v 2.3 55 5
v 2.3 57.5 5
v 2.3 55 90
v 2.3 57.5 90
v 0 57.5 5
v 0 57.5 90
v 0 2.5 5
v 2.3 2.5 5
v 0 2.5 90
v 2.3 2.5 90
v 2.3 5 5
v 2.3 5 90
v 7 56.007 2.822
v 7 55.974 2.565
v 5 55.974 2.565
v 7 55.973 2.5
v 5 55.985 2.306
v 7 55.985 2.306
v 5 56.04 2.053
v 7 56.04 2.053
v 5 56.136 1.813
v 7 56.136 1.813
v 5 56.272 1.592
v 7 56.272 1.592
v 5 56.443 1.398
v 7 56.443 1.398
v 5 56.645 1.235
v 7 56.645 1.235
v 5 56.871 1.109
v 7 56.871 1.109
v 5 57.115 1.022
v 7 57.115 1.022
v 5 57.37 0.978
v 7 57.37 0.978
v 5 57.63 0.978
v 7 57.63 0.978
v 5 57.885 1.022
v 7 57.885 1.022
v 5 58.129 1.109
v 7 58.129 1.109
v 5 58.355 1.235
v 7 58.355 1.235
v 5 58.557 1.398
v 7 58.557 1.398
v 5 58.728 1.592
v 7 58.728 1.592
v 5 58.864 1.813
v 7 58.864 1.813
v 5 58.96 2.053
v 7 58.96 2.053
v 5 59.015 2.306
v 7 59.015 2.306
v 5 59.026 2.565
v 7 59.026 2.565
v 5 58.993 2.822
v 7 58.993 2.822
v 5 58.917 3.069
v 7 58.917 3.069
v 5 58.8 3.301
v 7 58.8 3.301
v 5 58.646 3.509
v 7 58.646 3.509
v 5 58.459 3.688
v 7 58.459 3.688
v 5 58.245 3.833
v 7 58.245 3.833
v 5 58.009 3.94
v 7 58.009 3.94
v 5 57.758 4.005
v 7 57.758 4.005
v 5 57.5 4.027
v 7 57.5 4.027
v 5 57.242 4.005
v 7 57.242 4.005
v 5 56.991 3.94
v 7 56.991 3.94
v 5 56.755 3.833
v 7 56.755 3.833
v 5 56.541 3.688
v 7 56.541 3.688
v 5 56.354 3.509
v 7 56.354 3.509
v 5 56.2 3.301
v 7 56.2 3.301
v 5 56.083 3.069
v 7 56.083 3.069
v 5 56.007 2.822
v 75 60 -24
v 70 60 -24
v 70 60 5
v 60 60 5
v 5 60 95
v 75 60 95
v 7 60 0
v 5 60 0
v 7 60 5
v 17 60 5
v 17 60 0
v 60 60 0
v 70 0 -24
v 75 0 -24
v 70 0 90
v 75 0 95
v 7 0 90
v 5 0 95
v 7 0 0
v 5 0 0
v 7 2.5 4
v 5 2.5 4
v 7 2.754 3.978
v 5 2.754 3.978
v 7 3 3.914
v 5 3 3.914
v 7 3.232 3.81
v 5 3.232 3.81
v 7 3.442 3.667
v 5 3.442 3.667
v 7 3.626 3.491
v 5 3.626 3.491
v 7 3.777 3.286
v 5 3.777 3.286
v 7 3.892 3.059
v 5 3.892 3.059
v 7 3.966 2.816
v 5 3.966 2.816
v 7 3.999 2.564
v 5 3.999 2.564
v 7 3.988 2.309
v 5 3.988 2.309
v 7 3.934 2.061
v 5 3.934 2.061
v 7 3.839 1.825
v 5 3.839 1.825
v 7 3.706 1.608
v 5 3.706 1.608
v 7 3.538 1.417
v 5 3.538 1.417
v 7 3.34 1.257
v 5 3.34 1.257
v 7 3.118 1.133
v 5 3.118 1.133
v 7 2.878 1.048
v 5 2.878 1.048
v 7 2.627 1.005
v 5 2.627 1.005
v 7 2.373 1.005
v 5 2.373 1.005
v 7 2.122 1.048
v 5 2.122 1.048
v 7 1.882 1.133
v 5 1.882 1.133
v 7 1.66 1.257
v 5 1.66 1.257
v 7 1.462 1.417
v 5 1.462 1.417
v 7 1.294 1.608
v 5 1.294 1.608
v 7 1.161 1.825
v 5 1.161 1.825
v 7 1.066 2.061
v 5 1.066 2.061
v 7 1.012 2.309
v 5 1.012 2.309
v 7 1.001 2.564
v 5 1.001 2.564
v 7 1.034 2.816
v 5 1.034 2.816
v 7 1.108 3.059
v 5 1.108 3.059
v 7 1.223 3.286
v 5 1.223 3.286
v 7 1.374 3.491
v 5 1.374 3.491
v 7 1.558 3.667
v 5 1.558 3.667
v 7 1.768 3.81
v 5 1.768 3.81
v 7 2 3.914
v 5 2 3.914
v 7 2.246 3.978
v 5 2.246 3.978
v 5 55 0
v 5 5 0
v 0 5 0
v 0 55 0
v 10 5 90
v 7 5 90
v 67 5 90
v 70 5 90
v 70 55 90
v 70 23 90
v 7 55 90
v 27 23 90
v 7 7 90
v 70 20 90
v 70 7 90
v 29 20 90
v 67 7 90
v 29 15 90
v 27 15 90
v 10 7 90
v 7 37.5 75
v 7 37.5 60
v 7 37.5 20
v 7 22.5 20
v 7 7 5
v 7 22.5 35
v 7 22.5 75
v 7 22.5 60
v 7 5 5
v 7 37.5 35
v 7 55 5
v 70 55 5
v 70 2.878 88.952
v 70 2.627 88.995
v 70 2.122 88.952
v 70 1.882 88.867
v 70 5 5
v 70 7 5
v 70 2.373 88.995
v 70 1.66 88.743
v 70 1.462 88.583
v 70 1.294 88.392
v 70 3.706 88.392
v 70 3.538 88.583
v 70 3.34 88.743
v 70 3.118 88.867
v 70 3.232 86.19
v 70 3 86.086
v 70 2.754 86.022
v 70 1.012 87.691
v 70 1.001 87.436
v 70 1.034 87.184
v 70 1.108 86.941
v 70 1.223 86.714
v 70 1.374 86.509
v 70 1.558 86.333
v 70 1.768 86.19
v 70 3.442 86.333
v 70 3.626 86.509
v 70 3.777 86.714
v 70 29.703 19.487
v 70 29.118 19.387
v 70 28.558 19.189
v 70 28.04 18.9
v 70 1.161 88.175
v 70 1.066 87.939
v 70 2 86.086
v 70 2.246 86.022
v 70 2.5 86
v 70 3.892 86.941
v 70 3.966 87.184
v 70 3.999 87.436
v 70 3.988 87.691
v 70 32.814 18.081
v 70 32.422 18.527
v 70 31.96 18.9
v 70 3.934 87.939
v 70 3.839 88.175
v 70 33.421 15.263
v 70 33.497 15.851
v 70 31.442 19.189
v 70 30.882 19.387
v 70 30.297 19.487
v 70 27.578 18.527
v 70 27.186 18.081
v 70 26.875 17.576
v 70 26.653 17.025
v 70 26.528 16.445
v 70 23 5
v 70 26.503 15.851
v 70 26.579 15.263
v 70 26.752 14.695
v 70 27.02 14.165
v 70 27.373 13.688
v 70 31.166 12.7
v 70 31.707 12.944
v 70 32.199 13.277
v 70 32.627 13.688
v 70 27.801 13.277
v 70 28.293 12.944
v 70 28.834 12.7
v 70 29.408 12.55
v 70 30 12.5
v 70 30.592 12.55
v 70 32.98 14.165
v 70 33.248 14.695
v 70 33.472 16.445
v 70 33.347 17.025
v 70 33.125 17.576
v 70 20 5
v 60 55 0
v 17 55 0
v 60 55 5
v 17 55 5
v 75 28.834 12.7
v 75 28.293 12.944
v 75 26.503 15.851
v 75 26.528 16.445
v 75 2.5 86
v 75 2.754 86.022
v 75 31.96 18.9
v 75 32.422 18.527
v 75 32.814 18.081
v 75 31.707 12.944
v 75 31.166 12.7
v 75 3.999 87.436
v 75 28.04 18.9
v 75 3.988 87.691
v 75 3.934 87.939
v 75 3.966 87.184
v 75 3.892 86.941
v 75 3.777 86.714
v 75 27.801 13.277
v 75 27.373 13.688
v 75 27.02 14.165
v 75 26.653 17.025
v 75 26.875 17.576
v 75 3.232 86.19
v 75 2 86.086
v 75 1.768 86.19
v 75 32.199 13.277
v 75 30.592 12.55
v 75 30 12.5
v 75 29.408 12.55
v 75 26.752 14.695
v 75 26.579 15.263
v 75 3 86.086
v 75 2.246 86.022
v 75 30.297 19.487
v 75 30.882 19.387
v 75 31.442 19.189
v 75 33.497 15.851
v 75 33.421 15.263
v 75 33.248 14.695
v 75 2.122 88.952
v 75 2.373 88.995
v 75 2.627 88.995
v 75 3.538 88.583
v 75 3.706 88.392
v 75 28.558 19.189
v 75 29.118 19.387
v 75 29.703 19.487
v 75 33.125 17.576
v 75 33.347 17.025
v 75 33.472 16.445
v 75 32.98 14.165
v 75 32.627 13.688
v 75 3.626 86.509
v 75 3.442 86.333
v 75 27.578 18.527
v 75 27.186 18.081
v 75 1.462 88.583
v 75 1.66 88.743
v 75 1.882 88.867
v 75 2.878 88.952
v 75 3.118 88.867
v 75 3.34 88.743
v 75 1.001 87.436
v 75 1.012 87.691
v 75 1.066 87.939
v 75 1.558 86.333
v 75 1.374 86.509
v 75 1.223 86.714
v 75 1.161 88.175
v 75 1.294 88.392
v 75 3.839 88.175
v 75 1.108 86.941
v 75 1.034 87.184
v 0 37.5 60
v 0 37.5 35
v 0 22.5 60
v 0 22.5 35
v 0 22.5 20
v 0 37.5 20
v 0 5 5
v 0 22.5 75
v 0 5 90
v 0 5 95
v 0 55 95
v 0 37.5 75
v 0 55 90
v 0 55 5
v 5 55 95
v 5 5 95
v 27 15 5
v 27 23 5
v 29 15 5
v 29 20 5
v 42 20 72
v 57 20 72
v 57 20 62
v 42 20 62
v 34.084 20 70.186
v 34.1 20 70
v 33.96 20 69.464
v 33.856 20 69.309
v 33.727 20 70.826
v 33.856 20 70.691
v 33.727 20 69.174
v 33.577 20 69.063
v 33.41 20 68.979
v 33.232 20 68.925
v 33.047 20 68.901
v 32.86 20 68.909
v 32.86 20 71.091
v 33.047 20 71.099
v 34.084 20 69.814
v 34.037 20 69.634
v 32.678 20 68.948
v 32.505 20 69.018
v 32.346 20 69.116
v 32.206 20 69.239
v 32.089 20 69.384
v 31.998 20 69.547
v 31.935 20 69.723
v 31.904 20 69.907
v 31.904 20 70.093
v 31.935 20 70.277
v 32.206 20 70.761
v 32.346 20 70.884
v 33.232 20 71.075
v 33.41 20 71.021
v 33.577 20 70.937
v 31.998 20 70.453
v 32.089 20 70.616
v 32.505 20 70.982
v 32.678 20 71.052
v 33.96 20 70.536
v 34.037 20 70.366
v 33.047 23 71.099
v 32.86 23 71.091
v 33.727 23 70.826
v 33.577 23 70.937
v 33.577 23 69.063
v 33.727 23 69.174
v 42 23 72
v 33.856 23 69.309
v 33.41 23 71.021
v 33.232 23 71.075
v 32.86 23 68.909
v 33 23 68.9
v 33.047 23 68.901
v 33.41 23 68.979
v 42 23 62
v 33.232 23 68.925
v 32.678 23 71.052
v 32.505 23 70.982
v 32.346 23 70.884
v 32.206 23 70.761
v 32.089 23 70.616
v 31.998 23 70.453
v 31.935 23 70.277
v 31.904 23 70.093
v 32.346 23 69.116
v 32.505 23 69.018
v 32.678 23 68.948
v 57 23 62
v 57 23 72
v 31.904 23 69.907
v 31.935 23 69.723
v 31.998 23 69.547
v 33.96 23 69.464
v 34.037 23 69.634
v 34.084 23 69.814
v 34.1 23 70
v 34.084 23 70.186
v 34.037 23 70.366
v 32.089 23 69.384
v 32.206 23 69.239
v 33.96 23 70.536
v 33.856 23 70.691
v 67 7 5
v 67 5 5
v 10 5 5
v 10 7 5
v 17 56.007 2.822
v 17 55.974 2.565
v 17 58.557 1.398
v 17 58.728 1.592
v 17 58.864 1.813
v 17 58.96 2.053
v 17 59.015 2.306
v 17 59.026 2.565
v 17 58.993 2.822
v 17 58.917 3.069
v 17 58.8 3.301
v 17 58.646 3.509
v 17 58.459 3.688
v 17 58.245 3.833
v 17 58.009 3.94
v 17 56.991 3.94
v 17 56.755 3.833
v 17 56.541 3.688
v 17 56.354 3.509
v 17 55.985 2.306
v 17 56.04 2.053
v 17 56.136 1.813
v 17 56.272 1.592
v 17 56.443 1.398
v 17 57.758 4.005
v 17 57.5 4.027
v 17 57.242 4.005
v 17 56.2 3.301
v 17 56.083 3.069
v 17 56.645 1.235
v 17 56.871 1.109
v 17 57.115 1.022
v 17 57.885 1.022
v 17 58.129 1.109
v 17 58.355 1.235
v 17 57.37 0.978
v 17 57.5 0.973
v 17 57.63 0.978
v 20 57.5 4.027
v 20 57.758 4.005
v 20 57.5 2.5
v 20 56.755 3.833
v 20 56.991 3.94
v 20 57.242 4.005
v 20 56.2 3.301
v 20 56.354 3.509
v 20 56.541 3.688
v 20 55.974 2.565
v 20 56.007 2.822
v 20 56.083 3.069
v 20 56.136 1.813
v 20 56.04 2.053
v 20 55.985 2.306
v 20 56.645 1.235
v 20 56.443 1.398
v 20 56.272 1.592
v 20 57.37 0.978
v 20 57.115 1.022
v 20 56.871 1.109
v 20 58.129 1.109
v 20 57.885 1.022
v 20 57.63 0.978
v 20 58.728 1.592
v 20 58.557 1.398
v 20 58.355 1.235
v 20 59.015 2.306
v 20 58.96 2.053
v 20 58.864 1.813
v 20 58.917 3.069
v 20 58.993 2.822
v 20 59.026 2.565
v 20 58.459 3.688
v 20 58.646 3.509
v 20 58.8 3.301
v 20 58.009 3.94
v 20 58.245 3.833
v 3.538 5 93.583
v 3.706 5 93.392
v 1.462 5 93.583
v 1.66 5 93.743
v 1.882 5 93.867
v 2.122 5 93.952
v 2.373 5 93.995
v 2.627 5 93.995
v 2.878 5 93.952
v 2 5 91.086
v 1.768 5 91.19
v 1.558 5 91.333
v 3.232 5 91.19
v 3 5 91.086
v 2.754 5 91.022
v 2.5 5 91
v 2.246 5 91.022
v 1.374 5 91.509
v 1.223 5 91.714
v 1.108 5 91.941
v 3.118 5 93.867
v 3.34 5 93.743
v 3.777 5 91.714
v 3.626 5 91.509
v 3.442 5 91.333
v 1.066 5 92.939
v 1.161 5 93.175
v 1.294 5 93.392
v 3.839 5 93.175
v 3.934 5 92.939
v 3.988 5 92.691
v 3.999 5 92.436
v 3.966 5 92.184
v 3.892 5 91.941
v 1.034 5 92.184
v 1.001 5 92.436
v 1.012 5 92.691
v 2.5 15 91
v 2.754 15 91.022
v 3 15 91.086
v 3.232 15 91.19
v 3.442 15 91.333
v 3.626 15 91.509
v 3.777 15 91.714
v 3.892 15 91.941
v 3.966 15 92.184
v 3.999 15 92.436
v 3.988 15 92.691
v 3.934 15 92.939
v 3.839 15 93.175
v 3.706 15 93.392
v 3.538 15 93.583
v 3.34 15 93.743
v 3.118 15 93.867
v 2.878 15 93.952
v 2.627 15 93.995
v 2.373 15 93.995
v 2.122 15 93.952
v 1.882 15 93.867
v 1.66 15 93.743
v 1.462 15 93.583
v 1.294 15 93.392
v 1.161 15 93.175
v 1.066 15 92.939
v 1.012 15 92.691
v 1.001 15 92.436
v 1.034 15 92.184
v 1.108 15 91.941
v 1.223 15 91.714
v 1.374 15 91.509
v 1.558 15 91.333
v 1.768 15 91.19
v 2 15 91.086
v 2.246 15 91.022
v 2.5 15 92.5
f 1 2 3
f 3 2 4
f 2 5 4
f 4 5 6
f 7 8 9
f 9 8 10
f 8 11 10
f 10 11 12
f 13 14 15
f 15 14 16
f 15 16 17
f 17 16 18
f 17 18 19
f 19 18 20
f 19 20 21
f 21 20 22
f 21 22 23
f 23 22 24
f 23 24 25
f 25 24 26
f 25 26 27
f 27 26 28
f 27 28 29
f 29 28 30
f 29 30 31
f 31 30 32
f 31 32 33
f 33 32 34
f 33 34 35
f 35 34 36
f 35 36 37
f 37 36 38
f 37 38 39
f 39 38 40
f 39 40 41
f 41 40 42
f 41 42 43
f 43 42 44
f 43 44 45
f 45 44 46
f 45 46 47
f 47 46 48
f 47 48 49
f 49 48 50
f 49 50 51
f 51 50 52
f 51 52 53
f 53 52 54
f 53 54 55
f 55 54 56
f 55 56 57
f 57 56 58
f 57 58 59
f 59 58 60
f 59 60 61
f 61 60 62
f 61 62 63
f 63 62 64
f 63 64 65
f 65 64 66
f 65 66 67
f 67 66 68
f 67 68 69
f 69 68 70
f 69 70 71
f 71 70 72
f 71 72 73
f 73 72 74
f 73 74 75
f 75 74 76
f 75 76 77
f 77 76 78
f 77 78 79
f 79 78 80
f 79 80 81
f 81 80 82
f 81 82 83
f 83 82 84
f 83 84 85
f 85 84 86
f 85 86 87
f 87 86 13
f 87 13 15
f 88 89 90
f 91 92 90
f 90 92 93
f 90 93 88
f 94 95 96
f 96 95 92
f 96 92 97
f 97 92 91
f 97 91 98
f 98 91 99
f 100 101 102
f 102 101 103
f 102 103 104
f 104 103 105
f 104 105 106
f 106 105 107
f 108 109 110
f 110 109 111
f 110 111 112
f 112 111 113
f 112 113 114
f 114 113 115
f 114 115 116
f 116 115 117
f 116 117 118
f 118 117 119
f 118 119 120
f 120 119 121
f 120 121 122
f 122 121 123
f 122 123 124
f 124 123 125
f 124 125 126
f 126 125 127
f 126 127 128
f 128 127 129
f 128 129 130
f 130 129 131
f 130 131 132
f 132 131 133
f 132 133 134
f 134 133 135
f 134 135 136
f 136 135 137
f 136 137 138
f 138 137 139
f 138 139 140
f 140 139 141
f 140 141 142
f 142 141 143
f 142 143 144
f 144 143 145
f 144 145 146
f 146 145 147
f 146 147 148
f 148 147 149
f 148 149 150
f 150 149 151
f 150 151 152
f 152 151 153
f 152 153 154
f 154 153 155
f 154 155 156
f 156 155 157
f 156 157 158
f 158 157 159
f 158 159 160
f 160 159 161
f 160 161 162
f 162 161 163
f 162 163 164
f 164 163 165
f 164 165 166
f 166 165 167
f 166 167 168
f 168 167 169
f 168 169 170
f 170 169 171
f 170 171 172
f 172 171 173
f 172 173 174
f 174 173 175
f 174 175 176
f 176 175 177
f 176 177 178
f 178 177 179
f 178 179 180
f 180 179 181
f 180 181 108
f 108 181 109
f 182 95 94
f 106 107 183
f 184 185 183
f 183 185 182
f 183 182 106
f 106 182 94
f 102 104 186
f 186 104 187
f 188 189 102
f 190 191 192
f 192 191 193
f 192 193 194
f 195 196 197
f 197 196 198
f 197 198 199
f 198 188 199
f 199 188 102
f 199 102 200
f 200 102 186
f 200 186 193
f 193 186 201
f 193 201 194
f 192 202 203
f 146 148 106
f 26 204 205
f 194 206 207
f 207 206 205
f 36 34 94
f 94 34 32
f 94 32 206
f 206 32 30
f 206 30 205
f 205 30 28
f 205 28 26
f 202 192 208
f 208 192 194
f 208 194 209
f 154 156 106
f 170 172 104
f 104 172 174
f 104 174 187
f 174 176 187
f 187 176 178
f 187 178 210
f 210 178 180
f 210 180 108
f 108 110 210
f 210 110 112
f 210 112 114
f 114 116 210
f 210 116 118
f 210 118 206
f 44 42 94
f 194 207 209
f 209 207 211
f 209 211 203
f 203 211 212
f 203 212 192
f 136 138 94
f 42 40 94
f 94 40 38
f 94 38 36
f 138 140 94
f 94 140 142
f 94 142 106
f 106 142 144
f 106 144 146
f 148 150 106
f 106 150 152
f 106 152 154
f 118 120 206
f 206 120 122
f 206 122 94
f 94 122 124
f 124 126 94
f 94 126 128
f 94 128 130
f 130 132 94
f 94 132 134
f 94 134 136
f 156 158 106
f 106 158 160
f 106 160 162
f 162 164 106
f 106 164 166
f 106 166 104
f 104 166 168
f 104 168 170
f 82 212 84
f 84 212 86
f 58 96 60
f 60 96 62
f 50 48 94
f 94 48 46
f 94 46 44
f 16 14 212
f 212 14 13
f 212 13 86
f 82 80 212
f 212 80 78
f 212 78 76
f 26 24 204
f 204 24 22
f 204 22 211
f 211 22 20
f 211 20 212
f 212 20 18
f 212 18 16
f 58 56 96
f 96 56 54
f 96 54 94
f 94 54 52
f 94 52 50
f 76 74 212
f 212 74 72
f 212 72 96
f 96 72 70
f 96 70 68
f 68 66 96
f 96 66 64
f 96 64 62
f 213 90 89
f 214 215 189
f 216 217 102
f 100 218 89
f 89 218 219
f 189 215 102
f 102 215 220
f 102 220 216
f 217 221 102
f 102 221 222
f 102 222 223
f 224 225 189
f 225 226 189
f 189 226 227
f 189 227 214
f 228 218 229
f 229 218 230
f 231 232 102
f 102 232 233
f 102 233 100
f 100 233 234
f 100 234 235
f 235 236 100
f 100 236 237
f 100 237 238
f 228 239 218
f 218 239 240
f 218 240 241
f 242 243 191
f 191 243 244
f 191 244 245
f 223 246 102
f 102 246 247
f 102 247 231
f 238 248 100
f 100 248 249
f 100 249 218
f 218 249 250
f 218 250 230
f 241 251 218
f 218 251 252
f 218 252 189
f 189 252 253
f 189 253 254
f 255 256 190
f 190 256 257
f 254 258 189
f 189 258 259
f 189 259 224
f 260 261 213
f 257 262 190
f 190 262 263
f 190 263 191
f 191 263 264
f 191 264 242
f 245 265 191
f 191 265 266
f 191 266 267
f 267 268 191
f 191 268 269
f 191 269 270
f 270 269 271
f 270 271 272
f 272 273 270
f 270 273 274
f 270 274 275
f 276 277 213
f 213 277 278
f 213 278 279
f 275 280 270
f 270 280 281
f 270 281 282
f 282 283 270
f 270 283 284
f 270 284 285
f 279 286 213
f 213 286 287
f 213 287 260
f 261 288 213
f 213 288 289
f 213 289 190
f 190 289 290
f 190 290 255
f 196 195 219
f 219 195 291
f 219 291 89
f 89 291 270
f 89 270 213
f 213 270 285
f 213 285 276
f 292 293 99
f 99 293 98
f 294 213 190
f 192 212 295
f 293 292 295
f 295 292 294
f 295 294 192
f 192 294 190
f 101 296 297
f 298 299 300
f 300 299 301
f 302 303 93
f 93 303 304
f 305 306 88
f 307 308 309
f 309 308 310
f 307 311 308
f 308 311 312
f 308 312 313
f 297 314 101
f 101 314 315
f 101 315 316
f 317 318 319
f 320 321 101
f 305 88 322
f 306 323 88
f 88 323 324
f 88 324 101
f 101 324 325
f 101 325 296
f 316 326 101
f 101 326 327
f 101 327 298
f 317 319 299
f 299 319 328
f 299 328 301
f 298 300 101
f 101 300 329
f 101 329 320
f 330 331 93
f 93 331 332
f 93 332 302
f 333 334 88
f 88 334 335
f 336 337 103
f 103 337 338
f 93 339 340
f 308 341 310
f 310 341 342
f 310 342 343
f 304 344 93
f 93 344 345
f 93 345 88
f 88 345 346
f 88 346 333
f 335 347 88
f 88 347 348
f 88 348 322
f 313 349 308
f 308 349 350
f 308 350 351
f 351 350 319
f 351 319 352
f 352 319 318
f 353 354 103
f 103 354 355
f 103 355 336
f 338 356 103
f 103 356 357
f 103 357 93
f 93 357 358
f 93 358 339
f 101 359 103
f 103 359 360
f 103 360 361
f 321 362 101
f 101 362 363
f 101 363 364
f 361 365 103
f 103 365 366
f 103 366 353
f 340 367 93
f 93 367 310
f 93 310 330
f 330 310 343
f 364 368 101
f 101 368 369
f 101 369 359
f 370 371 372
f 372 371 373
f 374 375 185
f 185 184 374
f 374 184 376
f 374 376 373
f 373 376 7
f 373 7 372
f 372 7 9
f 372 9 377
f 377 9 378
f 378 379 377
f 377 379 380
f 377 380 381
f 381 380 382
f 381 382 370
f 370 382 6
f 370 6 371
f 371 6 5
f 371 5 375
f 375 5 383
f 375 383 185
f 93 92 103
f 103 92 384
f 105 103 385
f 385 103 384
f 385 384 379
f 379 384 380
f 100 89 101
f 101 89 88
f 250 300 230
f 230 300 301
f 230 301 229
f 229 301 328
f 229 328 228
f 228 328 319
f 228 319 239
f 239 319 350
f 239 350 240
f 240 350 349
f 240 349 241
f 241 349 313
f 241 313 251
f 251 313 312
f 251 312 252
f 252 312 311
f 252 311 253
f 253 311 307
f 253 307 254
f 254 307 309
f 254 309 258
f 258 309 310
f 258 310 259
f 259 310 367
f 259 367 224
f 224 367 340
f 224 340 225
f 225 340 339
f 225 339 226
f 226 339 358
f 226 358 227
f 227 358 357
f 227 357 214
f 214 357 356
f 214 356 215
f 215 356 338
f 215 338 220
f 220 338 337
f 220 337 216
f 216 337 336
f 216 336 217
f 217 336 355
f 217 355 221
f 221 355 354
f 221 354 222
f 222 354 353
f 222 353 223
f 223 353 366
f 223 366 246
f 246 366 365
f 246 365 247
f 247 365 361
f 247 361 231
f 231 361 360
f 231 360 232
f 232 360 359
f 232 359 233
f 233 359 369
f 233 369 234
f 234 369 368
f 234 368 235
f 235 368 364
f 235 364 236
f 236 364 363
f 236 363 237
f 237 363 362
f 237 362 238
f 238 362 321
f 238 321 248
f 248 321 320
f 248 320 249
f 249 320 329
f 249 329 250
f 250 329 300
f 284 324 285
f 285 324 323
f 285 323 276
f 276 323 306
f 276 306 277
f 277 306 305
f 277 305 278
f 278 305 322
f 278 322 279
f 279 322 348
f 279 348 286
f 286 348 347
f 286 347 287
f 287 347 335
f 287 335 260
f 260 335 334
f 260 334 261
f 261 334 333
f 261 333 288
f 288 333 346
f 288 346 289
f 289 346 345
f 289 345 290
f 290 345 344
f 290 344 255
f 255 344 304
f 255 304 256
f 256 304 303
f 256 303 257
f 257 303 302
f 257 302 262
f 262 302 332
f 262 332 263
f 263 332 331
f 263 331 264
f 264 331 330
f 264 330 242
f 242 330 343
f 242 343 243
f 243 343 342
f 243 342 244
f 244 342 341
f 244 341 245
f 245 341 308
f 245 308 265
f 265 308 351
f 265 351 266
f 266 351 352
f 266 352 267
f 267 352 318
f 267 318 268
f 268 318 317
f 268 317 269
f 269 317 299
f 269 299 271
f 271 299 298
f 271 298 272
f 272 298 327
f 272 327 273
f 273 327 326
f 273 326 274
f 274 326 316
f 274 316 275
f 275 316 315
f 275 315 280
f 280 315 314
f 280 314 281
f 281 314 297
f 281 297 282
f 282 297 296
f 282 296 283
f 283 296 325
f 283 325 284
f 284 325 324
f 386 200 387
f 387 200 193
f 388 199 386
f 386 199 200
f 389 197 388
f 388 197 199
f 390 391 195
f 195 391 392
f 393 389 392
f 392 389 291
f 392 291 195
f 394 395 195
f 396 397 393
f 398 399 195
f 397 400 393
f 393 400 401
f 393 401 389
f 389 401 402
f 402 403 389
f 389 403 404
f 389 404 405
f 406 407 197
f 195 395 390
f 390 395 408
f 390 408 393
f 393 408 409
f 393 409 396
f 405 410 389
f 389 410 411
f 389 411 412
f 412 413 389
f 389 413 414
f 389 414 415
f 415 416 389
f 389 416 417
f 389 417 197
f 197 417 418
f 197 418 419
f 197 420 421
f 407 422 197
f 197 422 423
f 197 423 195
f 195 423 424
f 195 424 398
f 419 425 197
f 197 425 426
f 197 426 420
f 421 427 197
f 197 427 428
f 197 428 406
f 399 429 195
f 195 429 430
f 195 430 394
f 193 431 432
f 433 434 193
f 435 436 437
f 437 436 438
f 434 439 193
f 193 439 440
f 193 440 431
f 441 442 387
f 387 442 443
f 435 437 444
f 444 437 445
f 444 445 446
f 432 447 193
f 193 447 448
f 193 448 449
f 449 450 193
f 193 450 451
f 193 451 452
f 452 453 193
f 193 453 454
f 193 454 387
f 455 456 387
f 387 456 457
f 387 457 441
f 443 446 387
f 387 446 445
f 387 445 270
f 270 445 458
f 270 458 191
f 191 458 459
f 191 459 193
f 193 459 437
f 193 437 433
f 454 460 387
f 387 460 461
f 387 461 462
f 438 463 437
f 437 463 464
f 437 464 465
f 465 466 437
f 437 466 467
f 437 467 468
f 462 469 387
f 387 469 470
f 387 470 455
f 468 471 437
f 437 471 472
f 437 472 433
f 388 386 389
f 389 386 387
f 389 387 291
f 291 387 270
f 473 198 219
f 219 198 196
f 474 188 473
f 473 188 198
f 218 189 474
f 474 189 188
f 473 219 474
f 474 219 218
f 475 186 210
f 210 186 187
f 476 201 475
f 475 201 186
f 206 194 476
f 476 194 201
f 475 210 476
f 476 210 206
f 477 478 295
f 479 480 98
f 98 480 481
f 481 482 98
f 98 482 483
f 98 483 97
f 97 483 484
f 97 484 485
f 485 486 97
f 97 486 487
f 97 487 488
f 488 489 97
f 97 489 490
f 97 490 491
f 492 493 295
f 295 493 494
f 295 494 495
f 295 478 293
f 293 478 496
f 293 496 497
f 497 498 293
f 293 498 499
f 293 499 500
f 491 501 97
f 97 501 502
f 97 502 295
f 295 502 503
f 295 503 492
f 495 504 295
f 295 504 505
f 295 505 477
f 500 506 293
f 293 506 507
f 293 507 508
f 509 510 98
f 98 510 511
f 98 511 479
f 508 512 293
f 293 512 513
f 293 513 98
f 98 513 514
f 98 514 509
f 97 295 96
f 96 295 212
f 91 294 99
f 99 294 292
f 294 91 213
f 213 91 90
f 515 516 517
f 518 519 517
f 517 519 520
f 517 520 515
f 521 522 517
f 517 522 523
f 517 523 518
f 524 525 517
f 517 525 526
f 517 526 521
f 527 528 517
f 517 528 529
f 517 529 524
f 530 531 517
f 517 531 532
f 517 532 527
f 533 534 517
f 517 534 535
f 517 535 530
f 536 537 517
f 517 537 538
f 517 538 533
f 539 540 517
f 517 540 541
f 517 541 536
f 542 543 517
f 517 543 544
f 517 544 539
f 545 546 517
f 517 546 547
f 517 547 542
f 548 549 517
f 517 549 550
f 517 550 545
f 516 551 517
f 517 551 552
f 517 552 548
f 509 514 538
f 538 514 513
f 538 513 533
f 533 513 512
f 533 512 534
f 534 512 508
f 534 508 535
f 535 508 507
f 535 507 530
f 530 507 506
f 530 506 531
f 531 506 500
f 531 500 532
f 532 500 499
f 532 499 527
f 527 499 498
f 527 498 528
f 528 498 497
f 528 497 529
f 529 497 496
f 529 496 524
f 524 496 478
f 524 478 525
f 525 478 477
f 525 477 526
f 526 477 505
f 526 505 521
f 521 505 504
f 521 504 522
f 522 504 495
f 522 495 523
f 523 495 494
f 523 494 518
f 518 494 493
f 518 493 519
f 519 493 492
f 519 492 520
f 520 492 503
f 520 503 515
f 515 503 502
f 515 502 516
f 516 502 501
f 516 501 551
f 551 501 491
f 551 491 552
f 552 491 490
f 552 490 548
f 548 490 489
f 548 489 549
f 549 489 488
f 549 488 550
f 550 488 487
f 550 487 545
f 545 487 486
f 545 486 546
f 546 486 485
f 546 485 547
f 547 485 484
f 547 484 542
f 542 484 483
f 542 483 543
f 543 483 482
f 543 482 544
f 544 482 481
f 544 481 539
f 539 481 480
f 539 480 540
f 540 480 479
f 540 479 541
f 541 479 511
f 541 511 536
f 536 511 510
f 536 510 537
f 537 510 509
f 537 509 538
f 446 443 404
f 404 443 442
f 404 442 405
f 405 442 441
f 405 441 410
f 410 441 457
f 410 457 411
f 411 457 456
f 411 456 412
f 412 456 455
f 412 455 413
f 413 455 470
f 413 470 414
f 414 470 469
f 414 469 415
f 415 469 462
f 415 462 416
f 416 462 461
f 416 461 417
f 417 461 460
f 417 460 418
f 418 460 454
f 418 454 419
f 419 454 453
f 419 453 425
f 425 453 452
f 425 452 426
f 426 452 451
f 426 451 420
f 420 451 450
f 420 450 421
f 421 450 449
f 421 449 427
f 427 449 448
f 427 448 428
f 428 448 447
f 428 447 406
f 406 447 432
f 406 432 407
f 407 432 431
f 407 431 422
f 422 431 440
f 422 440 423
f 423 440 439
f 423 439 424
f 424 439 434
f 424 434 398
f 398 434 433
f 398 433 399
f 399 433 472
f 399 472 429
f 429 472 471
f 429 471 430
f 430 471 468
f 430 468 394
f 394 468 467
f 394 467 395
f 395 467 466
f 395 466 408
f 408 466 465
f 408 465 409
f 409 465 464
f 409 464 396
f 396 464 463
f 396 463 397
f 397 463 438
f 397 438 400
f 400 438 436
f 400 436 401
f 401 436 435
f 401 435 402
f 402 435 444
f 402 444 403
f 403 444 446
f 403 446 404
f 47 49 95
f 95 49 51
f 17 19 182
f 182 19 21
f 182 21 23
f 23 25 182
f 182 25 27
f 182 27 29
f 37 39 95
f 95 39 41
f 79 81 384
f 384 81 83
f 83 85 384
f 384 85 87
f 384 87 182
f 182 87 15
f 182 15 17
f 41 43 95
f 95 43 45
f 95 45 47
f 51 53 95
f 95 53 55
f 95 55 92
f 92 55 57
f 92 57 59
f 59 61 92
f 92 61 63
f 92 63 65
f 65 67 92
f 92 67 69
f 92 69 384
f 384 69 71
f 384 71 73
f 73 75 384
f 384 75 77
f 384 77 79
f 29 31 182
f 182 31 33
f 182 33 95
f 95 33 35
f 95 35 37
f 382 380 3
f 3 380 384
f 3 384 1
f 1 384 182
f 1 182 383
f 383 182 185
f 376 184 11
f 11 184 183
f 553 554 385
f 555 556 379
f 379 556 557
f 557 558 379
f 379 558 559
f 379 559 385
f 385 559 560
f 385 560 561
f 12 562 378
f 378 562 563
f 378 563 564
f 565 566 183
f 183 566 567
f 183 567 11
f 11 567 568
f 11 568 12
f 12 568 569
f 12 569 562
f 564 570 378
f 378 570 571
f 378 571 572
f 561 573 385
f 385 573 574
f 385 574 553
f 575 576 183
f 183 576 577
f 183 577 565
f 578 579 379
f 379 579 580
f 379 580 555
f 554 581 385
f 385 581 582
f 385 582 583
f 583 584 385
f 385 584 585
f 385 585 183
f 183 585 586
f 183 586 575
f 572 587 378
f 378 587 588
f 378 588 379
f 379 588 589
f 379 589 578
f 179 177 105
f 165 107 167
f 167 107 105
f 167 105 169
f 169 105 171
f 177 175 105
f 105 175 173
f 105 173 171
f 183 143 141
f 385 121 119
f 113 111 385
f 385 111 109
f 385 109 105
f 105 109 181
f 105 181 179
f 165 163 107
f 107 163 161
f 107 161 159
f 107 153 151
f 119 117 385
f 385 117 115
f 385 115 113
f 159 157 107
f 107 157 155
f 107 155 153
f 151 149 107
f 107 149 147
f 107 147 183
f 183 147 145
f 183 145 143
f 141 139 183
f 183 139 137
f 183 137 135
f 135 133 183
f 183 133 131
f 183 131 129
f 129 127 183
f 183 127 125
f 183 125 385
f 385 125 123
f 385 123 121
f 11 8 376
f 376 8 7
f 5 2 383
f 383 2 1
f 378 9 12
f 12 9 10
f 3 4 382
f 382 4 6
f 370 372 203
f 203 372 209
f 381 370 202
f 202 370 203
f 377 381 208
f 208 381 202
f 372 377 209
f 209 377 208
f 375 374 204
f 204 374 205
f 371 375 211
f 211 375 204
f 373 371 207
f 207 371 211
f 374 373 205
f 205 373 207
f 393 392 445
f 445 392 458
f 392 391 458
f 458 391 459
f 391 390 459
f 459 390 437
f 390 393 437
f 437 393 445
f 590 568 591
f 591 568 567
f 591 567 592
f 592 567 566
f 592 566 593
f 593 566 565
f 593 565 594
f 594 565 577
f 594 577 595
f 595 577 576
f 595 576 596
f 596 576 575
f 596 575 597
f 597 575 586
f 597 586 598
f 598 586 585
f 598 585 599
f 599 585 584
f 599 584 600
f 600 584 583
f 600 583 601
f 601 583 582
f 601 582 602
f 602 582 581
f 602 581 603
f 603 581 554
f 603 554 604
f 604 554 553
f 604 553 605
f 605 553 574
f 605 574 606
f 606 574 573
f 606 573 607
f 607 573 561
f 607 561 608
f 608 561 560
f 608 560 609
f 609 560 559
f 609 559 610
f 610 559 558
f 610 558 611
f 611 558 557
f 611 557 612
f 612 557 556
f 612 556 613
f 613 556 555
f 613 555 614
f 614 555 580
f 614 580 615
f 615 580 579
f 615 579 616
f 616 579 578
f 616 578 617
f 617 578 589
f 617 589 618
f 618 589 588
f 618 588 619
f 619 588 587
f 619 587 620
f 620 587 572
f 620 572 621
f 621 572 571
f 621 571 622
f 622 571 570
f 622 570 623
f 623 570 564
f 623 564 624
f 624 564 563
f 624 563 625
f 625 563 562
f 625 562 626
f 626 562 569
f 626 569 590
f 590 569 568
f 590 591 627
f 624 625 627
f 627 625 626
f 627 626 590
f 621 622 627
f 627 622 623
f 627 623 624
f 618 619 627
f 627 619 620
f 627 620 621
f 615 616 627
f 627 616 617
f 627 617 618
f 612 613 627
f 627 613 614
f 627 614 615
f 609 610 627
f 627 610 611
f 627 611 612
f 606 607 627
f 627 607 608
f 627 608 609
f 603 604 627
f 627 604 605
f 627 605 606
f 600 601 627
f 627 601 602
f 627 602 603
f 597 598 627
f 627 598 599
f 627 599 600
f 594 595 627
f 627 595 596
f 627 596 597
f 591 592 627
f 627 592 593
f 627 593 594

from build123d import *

# Parameters (mm, degrees)
VOLUME_BOITIER_DEPTH     = 90
ESQUISSE2_W              = 75
ESQUISSE2_H              = 60
FACE_INF_RIEURE_DEPTH    = 5
ESQUISSE3_W              = 5
ESQUISSE3_H              = 60
FACE_PILE_DEPTH          = 24
ENL_V_MAT_EXTRU_6_REACH  = 137.093
ESQUISSE11_R             = 3.5
ESQUISSE11_R_2           = 1.5
ESQUISSE12_W             = 3
ESQUISSE12_H             = 2
BOSS_EXTRU_7_DEPTH       = 85
ESQUISSE13_R             = 1.5
ESQUISSE13_R_2           = 1.527028633
ENL_V_MAT_EXTRU_7_DEPTH  = 20
ESQUISSE14_W             = 10
ESQUISSE14_H             = 5
ENL_V_MAT_EXTRU_8_DEPTH  = 5
ENL_V_MAT_EXTRU_9_REACH  = 129.475
ESQUISSE15_R             = 1.1
ENL_V_MAT_EXTRU_10_DEPTH = 90
ESQUISSE17_W             = 5
ESQUISSE17_H             = 5
ENL_V_MAT_EXTRU_11_DEPTH = 5
ESQUISSE18_W             = 2.3
ESQUISSE18_H             = 2.5
ENL_V_MAT_EXTRU_12_DEPTH = 5
ENL_V_MAT_EXTRU_13_REACH = 137.093
ESQUISSE20_W             = 15
ESQUISSE20_H             = 15
ENL_V_MAT_EXTRU_14_REACH = 129.475
ESQUISSE21_W             = 15
ESQUISSE21_H             = 10
ESQUISSE22_R             = 1.5
ENL_V_MAT_EXTRU_15_DEPTH = 10


with BuildPart() as part:
    # Esquisse1 → volume boitier (new body)
    with BuildSketch(Plane.XY):
        Polygon((0, 60), (0, 0), (7, 0), (7, 55), (70, 55), (70, 0), (75, 0), (75, 60), align=None)
    extrude(amount=VOLUME_BOITIER_DEPTH)

    # Esquisse2 → face inférieure (add)
    with BuildSketch(Plane.XY.offset(90)):
        with Locations((37.5, 30)):
            Rectangle(ESQUISSE2_W, ESQUISSE2_H)
    extrude(amount=FACE_INF_RIEURE_DEPTH)

    # Esquisse3 → face pile (add)
    with BuildSketch(Plane(origin=(0, 0, 0), x_dir=(-1, 0, 0), z_dir=(0, 0, -1))):
        with Locations((-72.5, 30)):
            Rectangle(ESQUISSE3_W, ESQUISSE3_H)
    extrude(amount=FACE_PILE_DEPTH)

    # Esquisse11 → Enlèv. mat.-Extru.6 (cut, up to next)
    with BuildSketch(Plane(origin=(75, 0, 0), x_dir=(0, 0, -1), z_dir=(1, 0, 0)), mode=Mode.PRIVATE) as enl_v_mat_extru_6_sk1:
        with Locations((-16, 30)):
            Circle(ESQUISSE11_R)
    enl_v_mat_extru_6_tool1 = extrude(enl_v_mat_extru_6_sk1.sketch, amount=-ENL_V_MAT_EXTRU_6_REACH, mode=Mode.PRIVATE) & part.part
    # Esquisse11 → Enlèv. mat.-Extru.6 (cut, up to next)
    with BuildSketch(Plane(origin=(75, 0, 0), x_dir=(0, 0, -1), z_dir=(1, 0, 0)), mode=Mode.PRIVATE) as enl_v_mat_extru_6_sk2:
        with Locations((-87.5, 2.5)):
            Circle(ESQUISSE11_R_2)
    enl_v_mat_extru_6_tool2 = extrude(enl_v_mat_extru_6_sk2.sketch, amount=-ENL_V_MAT_EXTRU_6_REACH, mode=Mode.PRIVATE) & part.part
    add(enl_v_mat_extru_6_tool1.solids().sort_by_distance((75, 30, 16))[0], mode=Mode.SUBTRACT)
    add(enl_v_mat_extru_6_tool2.solids().sort_by_distance((75, 2.5, 87.5))[0], mode=Mode.SUBTRACT)

    # Esquisse12 → Boss.-Extru.7 (add)
    with BuildSketch(Plane(origin=(0, 0, 90), x_dir=(-1, 0, 0), z_dir=(0, 0, -1))):
        Polygon((-70, 20), (-70, 23), (-27, 23), (-27, 15), (-29, 15), (-29, 20), align=None)
        with Locations((-68.5, 6)):
            Rectangle(ESQUISSE12_W, ESQUISSE12_H)
        with Locations((-8.5, 6)):
            Rectangle(ESQUISSE12_W, ESQUISSE12_H)
    extrude(amount=BOSS_EXTRU_7_DEPTH)

    # Esquisse13 → Enlèv. mat.-Extru.7 (cut)
    with BuildSketch(Plane.ZY):
        with Locations((2.5, 2.5)):
            Circle(ESQUISSE13_R)
        with Locations((2.5, 57.5)):
            Circle(ESQUISSE13_R_2)
    extrude(amount=-ENL_V_MAT_EXTRU_7_DEPTH, mode=Mode.SUBTRACT)

    # Esquisse14 → Enlèv. mat.-Extru.8 (cut)
    with BuildSketch(Plane(origin=(0, 0, 0), x_dir=(-1, 0, 0), z_dir=(0, 0, -1))):
        with Locations((-65, 57.5)):
            Rectangle(ESQUISSE14_W, ESQUISSE14_H)
        with Locations((-12, 57.5)):
            Rectangle(ESQUISSE14_W, ESQUISSE14_H)
    extrude(amount=-ENL_V_MAT_EXTRU_8_DEPTH, mode=Mode.SUBTRACT)

    # Esquisse15 → Enlèv. mat.-Extru.9 (cut, up to next)
    with BuildSketch(Plane.XZ.offset(-20), mode=Mode.PRIVATE) as enl_v_mat_extru_9_sk1:
        with Locations((33, 70)):
            Circle(ESQUISSE15_R)
    enl_v_mat_extru_9_tool1 = extrude(enl_v_mat_extru_9_sk1.sketch, amount=-ENL_V_MAT_EXTRU_9_REACH, mode=Mode.PRIVATE) & part.part
    add(enl_v_mat_extru_9_tool1.solids().sort_by_distance((33, 20, 70))[0], mode=Mode.SUBTRACT)

    # Esquisse16 → Enlèv. mat.-Extru.10 (cut)
    with BuildSketch(Plane.XY.offset(95)):
        Polygon((0, 2.5), (2.3, 2.5), (2.3, 5), (5, 5), (5, 0), (0, 0), align=None)
        Polygon((0, 60), (0, 57.5), (2.3, 57.5), (2.3, 55), (5, 55), (5, 60), align=None)
    extrude(amount=-ENL_V_MAT_EXTRU_10_DEPTH, mode=Mode.SUBTRACT)

    # Esquisse17 → Enlèv. mat.-Extru.11 (cut)
    with BuildSketch(Plane.ZY):
        with Locations((2.5, 2.5)):
            Rectangle(ESQUISSE17_W, ESQUISSE17_H)
        with Locations((2.5, 57.5)):
            Rectangle(ESQUISSE17_W, ESQUISSE17_H)
    extrude(amount=-ENL_V_MAT_EXTRU_11_DEPTH, mode=Mode.SUBTRACT)

    # Esquisse18 → Enlèv. mat.-Extru.12 (cut)
    with BuildSketch(Plane.XY.offset(95)):
        with Locations((1.15, 3.75)):
            Rectangle(ESQUISSE18_W, ESQUISSE18_H)
        with Locations((1.15, 56.25)):
            Rectangle(ESQUISSE18_W, ESQUISSE18_H)
    extrude(amount=-ENL_V_MAT_EXTRU_12_DEPTH, mode=Mode.SUBTRACT)

    # Esquisse20 → Enlèv. mat.-Extru.13 (cut, up to next)
    with BuildSketch(Plane.ZY, mode=Mode.PRIVATE) as enl_v_mat_extru_13_sk1:
        with Locations((27.5, 30)):
            Rectangle(ESQUISSE20_W, ESQUISSE20_H)
    enl_v_mat_extru_13_tool1 = extrude(enl_v_mat_extru_13_sk1.sketch, amount=-ENL_V_MAT_EXTRU_13_REACH, mode=Mode.PRIVATE) & part.part
    # Esquisse20 → Enlèv. mat.-Extru.13 (cut, up to next)
    with BuildSketch(Plane.ZY, mode=Mode.PRIVATE) as enl_v_mat_extru_13_sk2:
        with Locations((67.5, 30)):
            Rectangle(ESQUISSE20_W, ESQUISSE20_H)
    enl_v_mat_extru_13_tool2 = extrude(enl_v_mat_extru_13_sk2.sketch, amount=-ENL_V_MAT_EXTRU_13_REACH, mode=Mode.PRIVATE) & part.part
    add(enl_v_mat_extru_13_tool1.solids().sort_by_distance((0, 30, 27.5))[0], mode=Mode.SUBTRACT)
    add(enl_v_mat_extru_13_tool2.solids().sort_by_distance((0, 30, 67.5))[0], mode=Mode.SUBTRACT)

    # Esquisse21 → Enlèv. mat.-Extru.14 (cut, up to next)
    with BuildSketch(Plane.XZ.offset(-20), mode=Mode.PRIVATE) as enl_v_mat_extru_14_sk1:
        with Locations((49.5, 67)):
            Rectangle(ESQUISSE21_W, ESQUISSE21_H)
    enl_v_mat_extru_14_tool1 = extrude(enl_v_mat_extru_14_sk1.sketch, amount=-ENL_V_MAT_EXTRU_14_REACH, mode=Mode.PRIVATE) & part.part
    add(enl_v_mat_extru_14_tool1.solids().sort_by_distance((49.5, 20, 67))[0], mode=Mode.SUBTRACT)

    # Esquisse22 → Enlèv. mat.-Extru.15 (cut)
    with BuildSketch(Plane.XZ.offset(-5)):
        with Locations(Location((2.5, 92.5, 0), (0, 0, 270))):
            Circle(ESQUISSE22_R)
    extrude(amount=-ENL_V_MAT_EXTRU_15_DEPTH, mode=Mode.SUBTRACT)


solid = part.part
